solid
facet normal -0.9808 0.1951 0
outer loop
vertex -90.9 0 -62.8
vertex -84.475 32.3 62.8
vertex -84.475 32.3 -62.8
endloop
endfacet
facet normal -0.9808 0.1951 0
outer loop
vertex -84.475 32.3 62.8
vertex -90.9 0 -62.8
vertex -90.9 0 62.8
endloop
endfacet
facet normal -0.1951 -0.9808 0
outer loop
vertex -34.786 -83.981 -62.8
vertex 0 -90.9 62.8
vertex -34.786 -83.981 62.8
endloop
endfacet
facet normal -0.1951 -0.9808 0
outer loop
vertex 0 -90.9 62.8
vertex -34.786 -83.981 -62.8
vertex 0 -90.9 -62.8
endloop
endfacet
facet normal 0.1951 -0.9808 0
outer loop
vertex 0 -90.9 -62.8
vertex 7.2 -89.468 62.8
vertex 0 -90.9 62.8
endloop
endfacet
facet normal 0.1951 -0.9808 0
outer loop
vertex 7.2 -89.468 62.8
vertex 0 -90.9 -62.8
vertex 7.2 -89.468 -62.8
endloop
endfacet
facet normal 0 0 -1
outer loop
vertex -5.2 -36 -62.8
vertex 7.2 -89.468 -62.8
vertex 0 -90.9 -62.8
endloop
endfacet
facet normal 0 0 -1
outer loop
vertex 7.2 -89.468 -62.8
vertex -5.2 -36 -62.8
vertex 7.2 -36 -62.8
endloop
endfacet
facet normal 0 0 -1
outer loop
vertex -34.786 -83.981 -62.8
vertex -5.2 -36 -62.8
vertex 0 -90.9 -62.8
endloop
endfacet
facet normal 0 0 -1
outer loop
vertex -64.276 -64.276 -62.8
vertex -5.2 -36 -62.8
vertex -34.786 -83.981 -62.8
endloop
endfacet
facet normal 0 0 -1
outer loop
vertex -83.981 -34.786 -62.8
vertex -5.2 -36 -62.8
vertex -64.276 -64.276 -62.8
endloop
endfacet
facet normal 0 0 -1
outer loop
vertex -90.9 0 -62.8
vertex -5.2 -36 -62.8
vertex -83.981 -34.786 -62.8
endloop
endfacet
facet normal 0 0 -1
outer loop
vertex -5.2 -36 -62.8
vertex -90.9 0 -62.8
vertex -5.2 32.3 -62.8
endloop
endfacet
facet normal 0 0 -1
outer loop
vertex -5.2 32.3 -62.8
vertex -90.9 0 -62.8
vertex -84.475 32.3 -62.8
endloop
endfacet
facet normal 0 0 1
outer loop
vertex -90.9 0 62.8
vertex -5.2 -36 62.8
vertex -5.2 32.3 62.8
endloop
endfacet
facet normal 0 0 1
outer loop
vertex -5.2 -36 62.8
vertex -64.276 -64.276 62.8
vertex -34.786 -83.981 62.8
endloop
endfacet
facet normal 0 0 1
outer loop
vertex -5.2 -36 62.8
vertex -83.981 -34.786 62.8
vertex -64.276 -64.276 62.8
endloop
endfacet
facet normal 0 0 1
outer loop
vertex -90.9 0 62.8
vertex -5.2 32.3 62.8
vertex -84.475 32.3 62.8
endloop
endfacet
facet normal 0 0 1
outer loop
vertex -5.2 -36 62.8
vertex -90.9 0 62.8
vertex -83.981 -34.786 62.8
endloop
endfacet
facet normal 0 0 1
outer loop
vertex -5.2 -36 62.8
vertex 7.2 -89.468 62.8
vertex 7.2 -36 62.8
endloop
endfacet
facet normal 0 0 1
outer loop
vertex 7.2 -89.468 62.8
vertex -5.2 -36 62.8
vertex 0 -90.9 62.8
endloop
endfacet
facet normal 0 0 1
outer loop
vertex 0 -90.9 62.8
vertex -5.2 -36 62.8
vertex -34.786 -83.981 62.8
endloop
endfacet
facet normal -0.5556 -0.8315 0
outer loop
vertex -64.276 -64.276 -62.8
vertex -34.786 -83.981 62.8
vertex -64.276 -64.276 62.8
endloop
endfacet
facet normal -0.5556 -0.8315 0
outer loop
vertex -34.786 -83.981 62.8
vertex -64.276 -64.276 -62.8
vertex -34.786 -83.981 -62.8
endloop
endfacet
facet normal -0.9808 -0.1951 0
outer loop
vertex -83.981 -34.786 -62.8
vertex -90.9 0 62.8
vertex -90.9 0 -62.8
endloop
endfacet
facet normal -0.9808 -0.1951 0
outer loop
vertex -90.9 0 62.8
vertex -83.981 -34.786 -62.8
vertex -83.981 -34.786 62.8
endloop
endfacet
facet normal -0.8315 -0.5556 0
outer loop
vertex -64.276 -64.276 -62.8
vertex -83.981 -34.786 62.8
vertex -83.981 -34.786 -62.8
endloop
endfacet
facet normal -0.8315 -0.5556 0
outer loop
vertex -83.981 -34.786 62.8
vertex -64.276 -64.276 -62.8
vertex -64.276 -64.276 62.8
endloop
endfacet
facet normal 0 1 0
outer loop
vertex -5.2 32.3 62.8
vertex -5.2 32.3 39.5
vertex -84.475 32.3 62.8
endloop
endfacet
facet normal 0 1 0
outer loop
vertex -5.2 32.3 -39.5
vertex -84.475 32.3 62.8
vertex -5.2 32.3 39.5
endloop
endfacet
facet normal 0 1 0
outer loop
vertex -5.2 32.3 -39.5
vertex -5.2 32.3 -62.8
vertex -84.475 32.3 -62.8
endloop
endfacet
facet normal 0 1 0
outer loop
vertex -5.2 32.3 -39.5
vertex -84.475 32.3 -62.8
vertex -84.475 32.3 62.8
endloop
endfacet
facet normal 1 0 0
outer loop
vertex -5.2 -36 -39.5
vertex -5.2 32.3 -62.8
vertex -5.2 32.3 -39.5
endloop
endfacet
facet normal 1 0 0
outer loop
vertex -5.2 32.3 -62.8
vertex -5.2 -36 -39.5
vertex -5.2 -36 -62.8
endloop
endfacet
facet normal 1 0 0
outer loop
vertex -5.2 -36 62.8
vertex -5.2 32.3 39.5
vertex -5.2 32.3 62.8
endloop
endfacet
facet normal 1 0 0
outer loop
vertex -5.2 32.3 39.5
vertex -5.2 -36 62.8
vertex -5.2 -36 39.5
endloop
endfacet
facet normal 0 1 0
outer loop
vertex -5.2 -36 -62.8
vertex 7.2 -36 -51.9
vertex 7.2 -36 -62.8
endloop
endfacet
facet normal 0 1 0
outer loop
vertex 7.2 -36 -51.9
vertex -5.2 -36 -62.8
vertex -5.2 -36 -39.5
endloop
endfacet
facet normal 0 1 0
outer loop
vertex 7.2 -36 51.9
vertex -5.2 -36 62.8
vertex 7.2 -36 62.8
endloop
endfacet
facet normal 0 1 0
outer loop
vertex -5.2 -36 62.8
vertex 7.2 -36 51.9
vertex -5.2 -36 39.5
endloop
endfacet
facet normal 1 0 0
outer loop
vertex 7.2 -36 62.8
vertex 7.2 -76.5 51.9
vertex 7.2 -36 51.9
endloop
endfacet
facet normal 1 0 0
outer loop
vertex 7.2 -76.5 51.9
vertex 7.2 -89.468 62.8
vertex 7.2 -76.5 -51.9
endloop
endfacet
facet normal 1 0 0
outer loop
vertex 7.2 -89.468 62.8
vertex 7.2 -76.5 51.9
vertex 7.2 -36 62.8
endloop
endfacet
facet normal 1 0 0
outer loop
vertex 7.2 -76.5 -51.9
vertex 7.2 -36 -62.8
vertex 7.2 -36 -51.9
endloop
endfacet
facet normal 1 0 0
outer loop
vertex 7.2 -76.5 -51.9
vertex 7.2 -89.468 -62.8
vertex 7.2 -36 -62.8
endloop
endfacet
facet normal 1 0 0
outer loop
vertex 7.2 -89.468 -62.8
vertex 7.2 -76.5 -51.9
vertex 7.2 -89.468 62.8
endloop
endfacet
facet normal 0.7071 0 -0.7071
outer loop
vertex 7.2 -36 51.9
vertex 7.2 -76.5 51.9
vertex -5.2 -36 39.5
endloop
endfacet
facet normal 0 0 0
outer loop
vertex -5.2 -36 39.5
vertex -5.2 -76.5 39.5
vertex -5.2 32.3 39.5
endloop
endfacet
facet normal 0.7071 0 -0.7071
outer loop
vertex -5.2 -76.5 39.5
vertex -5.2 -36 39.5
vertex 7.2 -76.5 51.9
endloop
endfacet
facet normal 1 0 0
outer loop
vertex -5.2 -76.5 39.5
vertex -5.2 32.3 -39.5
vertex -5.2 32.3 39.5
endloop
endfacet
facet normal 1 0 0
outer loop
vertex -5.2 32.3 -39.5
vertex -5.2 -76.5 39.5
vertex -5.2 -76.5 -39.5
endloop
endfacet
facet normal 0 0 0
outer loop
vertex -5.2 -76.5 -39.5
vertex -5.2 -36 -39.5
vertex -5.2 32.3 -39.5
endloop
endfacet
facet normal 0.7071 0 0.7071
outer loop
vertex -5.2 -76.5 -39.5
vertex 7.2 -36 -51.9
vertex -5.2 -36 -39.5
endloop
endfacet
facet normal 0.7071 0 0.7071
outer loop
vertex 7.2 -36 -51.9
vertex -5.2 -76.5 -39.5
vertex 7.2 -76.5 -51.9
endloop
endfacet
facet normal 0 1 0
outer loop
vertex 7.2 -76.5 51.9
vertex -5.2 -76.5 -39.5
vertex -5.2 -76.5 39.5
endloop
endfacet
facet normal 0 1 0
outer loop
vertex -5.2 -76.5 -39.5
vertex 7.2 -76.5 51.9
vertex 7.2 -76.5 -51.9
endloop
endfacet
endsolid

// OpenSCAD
$fa=.01;
$fn=16;

PhoneWidth = 76;
PhoneHeight = 157;
PhoneThickness = 12.4;
CenterOfMassCompensation=[1,2];
t=PhoneThickness;

od=PhoneHeight+2*t;
oh=PhoneWidth+4*t;
difference(){
  cylinder(d=od,h=oh, center=true);
  translate(CenterOfMassCompensation) linear_extrude(oh+.2, center=true){
    translate([-PhoneThickness/2,-PhoneWidth/2]) square([od/2,od]);
    translate([PhoneThickness/2,-od/2-5]) square([od/2,od+10]);
    translate([-od/2,od/6]) square([od,od/3]); //chop off top
    translate([PhoneThickness/2+t,-od/2]) square([od/2,od]);
  }
  pw=PhoneWidth+3; //lots of slop
  g=40;
  translate(CenterOfMassCompensation)  hull(){
    translate([-PhoneThickness/2,-od/2+1*t,-pw/2]) cube([od/2,od, pw]);
    translate([-PhoneThickness/2+g/2,-od/2+1*t,-pw/2-g/2]) cube([od/2,od, pw+g]);
  }
}
